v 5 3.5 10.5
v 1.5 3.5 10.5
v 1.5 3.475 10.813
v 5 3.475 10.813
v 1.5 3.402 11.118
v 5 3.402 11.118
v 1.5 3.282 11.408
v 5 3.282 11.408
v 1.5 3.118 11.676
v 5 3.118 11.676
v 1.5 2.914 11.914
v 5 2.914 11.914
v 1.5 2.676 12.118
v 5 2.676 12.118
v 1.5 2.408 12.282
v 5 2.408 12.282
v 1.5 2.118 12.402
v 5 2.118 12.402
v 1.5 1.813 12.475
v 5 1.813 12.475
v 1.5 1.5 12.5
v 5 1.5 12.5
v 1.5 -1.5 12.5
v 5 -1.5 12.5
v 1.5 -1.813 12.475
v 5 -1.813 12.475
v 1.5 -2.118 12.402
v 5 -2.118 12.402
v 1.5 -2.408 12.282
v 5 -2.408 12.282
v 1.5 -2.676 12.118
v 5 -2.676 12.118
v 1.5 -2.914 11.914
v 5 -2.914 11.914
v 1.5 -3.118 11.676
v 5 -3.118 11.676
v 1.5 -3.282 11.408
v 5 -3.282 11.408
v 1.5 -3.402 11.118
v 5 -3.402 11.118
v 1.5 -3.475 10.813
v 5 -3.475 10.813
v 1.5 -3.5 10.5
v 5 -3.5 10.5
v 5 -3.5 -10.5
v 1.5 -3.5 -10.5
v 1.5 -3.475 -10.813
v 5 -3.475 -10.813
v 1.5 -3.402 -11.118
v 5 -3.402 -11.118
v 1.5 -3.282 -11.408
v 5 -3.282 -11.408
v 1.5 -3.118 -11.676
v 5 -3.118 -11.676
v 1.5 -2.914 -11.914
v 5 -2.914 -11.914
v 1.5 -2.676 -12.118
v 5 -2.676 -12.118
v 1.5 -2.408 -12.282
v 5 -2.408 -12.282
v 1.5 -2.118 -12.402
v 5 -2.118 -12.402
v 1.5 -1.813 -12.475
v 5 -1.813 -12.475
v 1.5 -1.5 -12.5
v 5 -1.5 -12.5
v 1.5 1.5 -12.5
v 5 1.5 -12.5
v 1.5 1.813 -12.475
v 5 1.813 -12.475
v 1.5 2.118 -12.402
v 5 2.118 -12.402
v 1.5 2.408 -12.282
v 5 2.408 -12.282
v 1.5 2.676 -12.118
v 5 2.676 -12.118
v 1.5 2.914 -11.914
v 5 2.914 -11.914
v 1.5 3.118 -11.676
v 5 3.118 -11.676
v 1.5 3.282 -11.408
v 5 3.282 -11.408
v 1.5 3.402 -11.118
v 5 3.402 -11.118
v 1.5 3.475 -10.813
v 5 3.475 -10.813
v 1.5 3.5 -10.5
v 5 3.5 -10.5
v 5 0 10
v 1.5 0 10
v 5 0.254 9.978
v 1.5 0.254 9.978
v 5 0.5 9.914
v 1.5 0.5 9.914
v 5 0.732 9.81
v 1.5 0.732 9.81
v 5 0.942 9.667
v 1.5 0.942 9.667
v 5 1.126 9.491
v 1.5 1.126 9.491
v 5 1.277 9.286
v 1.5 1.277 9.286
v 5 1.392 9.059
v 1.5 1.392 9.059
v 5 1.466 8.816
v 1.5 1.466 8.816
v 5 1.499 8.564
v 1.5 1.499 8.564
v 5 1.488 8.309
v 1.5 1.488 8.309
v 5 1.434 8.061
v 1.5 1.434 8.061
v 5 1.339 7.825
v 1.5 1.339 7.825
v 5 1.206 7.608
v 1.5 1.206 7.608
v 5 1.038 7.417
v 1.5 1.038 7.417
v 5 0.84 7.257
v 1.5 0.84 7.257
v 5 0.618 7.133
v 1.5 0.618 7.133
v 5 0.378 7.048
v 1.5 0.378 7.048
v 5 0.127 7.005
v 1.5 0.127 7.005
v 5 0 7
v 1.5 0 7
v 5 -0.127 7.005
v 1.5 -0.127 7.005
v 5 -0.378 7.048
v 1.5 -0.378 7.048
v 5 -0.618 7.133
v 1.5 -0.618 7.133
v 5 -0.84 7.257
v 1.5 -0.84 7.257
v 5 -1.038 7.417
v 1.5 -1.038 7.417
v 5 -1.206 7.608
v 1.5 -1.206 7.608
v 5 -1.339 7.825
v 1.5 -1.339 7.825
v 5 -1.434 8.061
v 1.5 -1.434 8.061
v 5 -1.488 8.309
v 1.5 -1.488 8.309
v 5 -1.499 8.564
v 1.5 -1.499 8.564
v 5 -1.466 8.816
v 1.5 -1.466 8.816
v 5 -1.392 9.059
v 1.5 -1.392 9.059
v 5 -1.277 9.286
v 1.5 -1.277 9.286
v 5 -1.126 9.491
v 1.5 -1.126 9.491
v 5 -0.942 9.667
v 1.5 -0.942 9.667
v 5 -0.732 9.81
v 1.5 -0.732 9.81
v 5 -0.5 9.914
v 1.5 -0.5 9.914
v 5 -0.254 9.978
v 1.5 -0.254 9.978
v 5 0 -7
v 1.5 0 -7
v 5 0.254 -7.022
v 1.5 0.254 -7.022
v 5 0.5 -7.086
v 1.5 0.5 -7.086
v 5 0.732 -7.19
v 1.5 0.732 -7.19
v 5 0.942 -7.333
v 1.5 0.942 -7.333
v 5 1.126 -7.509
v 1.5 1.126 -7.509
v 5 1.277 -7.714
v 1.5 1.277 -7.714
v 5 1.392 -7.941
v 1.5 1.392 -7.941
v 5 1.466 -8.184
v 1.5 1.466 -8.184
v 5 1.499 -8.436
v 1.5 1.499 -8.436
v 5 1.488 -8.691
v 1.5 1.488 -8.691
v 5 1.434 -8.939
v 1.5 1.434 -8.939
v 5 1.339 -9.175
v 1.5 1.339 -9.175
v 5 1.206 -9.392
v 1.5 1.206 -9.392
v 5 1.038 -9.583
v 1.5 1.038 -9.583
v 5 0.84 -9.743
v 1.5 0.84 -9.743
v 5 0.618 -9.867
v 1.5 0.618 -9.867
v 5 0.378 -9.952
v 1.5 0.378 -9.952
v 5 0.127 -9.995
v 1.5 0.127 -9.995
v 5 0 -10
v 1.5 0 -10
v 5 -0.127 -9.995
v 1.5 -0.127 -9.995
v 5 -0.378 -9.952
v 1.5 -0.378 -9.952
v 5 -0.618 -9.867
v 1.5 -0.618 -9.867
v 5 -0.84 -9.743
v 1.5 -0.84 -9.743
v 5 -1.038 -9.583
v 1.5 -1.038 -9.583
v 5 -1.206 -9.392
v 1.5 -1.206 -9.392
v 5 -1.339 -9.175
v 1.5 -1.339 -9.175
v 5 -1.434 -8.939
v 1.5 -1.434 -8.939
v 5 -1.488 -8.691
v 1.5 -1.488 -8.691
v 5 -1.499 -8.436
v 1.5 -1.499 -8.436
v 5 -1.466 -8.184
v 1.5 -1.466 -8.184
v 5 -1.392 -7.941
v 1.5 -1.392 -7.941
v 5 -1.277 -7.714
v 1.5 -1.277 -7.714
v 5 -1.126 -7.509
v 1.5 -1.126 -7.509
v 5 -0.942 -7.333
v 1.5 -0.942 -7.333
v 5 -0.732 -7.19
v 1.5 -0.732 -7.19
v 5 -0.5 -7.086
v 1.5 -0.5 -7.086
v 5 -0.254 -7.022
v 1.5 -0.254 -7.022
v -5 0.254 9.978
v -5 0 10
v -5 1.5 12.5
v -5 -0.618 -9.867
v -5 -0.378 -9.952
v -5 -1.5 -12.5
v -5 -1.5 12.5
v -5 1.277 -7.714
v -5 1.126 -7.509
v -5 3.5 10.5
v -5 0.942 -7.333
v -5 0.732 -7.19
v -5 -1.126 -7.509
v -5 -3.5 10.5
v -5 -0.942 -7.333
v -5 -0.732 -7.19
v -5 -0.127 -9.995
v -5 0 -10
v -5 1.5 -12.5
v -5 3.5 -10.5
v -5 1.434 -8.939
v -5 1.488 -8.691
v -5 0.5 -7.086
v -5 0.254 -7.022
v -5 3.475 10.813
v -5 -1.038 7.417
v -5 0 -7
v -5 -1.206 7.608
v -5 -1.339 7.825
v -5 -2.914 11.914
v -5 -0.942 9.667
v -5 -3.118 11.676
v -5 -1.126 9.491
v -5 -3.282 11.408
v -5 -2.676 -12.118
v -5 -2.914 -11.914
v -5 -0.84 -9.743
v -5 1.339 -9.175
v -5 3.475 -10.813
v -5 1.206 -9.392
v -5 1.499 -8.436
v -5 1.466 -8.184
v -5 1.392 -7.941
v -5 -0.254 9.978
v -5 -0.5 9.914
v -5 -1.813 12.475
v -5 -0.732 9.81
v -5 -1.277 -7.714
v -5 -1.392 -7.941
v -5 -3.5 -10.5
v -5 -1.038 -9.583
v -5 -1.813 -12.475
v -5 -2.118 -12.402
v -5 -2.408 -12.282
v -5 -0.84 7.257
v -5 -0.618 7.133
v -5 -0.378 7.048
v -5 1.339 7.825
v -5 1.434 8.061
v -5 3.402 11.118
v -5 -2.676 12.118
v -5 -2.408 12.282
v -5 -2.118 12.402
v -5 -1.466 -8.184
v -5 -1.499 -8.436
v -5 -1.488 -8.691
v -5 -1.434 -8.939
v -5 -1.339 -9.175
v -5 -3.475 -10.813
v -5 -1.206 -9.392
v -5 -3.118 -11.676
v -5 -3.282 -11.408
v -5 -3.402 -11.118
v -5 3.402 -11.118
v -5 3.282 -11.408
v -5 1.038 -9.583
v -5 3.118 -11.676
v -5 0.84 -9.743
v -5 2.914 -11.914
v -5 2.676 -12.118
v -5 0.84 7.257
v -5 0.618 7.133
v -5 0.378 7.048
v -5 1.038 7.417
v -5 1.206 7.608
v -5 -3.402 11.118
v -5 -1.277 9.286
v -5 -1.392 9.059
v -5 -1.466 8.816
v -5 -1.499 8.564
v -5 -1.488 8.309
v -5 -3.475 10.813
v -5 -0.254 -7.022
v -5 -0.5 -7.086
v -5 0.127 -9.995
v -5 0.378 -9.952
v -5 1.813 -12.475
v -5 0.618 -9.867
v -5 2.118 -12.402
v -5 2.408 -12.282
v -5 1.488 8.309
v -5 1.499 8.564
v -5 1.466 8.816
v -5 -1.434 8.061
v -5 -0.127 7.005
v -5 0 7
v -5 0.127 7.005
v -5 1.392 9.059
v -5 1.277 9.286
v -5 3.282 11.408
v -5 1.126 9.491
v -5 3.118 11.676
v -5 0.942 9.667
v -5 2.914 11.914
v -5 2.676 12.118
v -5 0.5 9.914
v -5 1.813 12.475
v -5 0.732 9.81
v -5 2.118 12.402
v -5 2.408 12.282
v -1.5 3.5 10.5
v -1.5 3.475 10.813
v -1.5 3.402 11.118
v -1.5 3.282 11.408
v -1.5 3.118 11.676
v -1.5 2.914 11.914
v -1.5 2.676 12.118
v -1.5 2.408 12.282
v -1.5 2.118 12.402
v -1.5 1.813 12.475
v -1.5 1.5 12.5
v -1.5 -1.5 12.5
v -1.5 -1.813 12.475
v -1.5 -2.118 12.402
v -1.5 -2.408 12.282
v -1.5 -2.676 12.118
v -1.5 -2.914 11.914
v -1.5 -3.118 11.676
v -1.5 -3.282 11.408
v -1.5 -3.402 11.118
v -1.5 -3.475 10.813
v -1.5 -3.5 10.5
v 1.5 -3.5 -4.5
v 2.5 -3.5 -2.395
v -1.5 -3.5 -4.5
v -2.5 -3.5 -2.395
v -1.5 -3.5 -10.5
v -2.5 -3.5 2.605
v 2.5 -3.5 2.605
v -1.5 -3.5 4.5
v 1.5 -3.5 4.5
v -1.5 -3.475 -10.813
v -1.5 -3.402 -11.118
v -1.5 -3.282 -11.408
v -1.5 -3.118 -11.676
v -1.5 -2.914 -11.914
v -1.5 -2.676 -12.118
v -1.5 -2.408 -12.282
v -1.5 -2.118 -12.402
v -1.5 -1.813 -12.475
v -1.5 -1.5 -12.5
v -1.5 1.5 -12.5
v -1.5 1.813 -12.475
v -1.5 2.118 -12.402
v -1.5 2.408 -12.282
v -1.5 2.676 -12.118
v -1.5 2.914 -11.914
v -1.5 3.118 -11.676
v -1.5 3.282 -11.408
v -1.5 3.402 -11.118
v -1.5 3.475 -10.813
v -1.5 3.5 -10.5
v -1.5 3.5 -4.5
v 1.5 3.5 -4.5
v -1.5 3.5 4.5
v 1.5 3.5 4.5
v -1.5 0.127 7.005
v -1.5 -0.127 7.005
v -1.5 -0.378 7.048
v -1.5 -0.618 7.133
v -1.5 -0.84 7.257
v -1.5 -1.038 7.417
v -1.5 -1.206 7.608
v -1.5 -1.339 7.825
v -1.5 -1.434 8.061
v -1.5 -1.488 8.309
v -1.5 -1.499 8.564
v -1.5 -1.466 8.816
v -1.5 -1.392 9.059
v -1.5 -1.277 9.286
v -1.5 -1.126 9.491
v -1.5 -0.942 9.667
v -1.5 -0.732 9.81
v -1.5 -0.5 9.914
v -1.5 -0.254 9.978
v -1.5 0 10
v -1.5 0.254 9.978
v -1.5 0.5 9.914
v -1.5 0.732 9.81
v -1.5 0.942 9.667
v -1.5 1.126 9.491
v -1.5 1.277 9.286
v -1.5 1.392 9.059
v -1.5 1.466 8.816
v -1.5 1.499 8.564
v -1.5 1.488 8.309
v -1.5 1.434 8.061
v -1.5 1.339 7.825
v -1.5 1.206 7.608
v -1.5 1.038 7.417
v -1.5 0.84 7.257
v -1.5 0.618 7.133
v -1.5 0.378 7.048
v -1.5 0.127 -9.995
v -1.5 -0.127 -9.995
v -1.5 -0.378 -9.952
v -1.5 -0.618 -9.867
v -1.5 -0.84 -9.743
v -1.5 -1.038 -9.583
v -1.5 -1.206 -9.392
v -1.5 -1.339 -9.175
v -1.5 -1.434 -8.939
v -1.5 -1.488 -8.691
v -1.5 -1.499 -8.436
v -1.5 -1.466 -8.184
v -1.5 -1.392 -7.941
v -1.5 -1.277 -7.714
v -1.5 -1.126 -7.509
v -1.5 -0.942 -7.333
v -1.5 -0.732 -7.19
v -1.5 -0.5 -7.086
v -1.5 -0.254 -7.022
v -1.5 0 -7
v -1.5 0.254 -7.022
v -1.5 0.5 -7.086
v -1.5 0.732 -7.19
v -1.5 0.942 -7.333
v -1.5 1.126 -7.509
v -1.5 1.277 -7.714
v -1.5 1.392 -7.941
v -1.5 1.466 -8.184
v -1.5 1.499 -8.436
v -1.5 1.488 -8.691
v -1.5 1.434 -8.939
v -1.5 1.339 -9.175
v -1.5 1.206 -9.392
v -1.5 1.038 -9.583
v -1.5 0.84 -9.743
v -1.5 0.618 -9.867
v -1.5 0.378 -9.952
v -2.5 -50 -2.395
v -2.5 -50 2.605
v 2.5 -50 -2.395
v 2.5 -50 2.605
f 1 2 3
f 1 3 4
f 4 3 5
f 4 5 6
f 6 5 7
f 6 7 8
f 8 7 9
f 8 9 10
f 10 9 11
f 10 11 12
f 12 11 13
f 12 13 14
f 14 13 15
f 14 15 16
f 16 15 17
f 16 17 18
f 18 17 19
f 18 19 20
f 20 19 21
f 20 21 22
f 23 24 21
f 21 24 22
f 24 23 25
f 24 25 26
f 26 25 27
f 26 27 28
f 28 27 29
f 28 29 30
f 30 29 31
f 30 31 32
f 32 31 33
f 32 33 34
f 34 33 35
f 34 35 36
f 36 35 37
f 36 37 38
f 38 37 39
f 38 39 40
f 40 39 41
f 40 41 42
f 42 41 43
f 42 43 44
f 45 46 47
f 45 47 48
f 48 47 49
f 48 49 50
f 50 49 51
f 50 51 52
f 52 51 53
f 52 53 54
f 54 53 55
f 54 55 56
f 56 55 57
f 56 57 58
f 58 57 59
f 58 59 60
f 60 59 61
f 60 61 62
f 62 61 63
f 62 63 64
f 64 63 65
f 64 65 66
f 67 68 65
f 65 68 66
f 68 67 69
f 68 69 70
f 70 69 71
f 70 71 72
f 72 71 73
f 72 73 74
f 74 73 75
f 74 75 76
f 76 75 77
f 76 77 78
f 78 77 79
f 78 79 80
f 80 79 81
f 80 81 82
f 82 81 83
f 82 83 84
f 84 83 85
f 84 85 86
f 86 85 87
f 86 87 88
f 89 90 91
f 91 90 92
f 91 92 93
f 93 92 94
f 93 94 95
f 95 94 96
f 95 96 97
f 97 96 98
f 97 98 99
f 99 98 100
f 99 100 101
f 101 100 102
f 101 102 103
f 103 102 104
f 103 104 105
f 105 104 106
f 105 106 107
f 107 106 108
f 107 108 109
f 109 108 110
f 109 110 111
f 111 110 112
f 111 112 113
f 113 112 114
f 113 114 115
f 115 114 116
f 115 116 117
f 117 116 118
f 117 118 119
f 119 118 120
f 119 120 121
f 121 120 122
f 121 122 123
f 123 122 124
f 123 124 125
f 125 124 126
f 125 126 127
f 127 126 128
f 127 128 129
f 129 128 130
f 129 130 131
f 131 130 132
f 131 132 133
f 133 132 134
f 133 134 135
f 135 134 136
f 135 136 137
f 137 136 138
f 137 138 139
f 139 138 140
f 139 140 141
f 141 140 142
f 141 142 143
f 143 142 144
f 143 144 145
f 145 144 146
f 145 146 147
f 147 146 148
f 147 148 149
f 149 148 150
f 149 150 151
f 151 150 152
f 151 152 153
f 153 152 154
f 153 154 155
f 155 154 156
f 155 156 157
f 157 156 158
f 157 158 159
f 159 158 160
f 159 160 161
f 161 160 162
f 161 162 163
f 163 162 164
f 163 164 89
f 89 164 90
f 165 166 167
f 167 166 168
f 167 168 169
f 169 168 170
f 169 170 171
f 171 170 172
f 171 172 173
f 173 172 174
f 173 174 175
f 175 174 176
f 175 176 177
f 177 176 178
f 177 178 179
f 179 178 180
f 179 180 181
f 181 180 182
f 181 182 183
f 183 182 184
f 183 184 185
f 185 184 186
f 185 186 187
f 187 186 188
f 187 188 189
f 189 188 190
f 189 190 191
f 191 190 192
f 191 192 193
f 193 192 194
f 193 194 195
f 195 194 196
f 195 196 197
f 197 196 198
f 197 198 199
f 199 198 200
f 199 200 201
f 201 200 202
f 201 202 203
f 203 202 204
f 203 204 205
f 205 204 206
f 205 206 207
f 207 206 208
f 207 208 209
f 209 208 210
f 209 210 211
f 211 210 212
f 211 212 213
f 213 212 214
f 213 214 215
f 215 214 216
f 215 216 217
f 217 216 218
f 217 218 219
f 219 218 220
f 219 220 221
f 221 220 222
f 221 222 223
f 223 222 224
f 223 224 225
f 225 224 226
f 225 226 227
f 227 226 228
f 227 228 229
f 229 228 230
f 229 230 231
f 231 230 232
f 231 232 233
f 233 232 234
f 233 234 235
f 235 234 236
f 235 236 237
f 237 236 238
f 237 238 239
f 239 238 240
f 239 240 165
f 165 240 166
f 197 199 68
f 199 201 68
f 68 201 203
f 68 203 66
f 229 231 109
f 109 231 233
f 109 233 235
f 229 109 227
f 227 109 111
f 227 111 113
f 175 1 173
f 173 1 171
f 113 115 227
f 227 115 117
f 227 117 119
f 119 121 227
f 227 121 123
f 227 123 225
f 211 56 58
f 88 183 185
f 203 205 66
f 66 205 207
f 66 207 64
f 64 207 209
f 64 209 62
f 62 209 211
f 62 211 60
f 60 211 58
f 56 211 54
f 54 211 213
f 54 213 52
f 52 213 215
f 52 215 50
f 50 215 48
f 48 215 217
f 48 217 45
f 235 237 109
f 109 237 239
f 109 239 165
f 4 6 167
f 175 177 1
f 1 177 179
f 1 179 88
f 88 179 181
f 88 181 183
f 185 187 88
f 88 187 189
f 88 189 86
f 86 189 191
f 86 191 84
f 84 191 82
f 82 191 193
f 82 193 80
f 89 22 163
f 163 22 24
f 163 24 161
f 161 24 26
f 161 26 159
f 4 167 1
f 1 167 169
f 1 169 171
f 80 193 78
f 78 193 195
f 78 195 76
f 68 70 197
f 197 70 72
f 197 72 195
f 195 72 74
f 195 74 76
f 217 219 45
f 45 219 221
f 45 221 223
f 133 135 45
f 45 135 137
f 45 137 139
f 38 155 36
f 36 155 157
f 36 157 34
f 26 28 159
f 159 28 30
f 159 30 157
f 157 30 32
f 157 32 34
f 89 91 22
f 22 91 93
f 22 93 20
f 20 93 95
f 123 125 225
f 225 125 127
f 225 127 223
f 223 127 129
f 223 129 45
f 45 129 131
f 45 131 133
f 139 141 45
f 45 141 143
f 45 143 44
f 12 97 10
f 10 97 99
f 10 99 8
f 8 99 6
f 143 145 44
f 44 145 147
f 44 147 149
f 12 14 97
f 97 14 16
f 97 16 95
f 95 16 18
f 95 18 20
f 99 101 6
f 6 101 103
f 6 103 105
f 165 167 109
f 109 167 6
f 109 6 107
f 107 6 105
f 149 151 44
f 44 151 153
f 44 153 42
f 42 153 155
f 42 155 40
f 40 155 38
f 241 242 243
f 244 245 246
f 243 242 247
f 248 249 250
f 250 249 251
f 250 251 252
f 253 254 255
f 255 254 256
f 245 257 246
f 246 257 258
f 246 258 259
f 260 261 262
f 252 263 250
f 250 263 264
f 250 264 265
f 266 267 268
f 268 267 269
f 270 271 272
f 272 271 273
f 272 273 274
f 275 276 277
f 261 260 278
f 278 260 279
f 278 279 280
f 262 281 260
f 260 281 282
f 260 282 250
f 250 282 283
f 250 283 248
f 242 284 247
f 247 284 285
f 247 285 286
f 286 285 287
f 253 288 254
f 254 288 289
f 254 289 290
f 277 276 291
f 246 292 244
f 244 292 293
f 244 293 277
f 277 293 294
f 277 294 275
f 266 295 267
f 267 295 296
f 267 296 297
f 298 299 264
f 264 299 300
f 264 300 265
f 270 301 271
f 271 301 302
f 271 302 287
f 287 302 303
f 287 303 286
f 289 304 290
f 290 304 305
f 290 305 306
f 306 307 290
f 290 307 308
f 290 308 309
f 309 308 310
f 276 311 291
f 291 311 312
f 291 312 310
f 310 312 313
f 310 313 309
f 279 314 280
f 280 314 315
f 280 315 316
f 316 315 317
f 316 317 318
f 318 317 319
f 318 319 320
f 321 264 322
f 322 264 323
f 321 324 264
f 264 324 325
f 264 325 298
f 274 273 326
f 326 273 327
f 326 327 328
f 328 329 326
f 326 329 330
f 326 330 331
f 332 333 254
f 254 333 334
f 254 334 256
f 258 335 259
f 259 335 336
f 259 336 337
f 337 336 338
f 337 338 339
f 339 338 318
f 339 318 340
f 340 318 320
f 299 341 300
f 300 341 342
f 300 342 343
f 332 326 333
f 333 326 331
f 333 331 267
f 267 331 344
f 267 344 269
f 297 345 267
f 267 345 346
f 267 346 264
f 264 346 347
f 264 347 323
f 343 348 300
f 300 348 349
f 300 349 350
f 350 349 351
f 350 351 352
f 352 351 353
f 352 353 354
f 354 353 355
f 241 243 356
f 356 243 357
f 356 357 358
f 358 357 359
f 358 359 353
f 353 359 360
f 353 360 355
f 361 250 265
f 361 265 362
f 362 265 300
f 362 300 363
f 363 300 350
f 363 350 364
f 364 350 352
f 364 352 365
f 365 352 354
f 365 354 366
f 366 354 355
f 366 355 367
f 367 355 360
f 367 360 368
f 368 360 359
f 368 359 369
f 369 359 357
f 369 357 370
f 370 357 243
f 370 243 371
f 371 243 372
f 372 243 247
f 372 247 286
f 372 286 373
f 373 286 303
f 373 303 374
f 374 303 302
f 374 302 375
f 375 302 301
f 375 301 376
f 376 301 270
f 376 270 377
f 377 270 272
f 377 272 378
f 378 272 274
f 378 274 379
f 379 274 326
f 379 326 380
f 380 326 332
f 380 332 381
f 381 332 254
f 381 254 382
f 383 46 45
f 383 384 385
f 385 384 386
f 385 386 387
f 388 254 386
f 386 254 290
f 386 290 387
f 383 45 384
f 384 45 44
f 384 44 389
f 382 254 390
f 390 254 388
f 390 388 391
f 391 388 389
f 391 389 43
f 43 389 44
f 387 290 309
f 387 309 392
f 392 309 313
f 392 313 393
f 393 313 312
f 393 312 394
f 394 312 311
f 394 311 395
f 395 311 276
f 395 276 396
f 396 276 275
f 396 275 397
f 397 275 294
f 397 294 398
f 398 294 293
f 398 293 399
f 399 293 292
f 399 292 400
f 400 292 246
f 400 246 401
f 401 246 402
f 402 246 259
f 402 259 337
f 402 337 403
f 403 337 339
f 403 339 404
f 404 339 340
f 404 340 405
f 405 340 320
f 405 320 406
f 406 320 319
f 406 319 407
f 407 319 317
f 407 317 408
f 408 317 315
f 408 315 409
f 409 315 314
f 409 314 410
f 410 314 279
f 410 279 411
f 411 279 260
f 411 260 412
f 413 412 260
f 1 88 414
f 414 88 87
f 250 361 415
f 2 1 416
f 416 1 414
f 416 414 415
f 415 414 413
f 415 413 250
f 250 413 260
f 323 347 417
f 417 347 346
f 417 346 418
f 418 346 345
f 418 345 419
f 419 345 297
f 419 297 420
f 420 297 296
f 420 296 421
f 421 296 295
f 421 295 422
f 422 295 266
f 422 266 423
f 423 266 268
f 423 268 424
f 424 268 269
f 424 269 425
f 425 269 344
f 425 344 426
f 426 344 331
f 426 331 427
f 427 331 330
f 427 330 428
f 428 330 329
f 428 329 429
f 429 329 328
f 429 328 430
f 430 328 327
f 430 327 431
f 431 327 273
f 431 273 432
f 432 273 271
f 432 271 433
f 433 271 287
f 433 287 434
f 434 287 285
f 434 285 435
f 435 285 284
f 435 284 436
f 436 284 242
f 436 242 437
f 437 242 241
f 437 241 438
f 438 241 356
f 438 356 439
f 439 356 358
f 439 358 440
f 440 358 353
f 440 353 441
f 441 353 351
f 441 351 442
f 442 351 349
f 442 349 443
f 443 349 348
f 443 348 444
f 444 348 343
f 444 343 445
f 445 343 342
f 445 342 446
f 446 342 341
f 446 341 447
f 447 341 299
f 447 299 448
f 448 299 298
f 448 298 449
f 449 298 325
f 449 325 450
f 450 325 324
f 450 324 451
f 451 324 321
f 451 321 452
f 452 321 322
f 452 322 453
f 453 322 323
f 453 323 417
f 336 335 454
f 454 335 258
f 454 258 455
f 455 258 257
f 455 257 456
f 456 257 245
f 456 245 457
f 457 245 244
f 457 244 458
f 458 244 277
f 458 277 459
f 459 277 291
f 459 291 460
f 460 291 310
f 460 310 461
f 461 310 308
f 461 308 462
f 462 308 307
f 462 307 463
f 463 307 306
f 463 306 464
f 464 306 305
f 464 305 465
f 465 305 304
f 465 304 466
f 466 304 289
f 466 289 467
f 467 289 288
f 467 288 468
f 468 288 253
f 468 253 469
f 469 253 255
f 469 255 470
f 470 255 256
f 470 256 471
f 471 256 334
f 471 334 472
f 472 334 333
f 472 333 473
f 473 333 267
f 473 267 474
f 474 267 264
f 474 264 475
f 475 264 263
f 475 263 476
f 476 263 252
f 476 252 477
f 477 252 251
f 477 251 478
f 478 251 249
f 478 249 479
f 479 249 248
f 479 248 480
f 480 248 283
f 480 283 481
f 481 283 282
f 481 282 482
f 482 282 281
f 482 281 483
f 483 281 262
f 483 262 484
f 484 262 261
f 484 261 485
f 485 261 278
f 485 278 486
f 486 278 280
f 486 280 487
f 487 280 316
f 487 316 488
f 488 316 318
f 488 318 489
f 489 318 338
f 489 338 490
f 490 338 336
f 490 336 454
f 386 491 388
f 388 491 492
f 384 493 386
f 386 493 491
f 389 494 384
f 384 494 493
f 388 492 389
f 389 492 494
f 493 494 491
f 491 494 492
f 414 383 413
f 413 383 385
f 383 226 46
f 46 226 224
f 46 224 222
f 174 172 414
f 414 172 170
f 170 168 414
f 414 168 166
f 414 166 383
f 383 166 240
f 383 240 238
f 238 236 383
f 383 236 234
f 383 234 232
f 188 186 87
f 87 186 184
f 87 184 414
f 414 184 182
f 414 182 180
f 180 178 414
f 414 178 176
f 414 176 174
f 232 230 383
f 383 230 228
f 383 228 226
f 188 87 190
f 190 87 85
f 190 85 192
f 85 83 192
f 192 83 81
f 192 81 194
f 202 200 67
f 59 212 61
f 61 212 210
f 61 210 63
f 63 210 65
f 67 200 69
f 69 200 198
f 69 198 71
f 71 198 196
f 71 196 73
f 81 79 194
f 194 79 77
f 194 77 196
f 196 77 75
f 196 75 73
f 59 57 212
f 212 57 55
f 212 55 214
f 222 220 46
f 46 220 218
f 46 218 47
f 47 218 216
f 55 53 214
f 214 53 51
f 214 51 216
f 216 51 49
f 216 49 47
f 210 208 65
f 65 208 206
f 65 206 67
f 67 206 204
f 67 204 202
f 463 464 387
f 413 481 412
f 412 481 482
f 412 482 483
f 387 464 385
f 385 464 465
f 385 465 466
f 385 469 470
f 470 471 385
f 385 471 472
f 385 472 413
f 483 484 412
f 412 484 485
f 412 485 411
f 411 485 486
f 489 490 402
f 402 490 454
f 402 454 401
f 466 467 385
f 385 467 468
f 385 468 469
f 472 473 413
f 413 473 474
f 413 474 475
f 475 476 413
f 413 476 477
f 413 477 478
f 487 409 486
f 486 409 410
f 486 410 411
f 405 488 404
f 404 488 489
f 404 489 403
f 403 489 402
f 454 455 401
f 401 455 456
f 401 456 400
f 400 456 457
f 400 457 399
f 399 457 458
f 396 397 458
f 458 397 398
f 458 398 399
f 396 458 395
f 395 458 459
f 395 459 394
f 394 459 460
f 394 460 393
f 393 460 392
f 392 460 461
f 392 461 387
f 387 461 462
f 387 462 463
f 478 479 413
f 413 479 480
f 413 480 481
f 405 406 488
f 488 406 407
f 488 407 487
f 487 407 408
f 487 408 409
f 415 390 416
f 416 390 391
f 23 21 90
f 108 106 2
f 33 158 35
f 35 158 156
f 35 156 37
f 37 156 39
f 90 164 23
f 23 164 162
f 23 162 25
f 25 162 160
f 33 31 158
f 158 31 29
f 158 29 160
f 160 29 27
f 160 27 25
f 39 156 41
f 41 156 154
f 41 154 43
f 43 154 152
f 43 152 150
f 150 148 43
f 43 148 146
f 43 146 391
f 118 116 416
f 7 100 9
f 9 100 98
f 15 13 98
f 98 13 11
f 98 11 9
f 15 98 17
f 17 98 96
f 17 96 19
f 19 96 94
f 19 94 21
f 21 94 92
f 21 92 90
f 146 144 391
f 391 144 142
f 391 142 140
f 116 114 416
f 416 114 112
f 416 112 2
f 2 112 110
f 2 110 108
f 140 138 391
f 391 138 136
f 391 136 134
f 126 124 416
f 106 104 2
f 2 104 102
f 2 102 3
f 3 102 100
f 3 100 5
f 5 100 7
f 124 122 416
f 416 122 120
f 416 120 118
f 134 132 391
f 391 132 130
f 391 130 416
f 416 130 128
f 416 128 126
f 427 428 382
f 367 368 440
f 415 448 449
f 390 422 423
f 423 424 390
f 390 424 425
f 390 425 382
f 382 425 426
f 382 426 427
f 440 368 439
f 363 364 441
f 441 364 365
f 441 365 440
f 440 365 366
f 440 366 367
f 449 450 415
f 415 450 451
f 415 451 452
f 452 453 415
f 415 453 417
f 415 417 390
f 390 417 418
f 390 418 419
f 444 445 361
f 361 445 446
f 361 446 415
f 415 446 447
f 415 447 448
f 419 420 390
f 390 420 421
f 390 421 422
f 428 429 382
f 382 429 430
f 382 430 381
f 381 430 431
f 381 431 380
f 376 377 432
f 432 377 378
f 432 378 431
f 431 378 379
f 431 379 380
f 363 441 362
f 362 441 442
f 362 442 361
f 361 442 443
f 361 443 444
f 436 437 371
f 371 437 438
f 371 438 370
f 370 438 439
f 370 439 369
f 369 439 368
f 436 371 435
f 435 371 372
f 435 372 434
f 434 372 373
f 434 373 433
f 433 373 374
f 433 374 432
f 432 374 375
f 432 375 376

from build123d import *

# Parameters (mm, degrees)
CROQUIS1_W                 = 5
CROQUIS1_H                 = 5
SALIENTE_EXTRUIR1_DEPTH    = 50
CROQUIS2_R                 = 1.5
SALIENTE_EXTRUIR2_DEPTH    = 5
CORTAR_EXTRUIR1_DEPTH      = 56.167925464
CORTAR_EXTRUIR1_DEPTH_BACK = 56.167925464
CROQUIS3_W                 = 3
CROQUIS3_H                 = 8


with BuildPart() as part:
    # Croquis1 → Saliente-Extruir1 (new body)
    with BuildSketch(Plane(origin=(0, 0, 0), x_dir=(1, 0, 0), z_dir=(0, 1, 0))):
        with Locations((0, -0.104885861)):
            Rectangle(CROQUIS1_W, CROQUIS1_H)
    extrude(amount=-SALIENTE_EXTRUIR1_DEPTH)

    # Croquis2 → Saliente-Extruir2 (add, symmetric)
    with BuildSketch(Plane(origin=(0, 0, 0), x_dir=(0, 0, -1), z_dir=(1, 0, 0))):
        with BuildLine():
            Line((10.5, -3.5), (-10.5, -3.5))
            ThreePointArc((-10.5, -3.5), (-11.914213562, -2.914213562), (-12.5, -1.5))
            Line((-12.5, -1.5), (-12.5, 1.5))
            ThreePointArc((-12.5, 1.5), (-11.914213562, 2.914213562), (-10.5, 3.5))
            Line((-10.5, 3.5), (10.5, 3.5))
            ThreePointArc((10.5, 3.5), (11.914213562, 2.914213562), (12.5, 1.5))
            Line((12.5, 1.5), (12.5, -1.5))
            ThreePointArc((12.5, -1.5), (11.914213562, -2.914213562), (10.5, -3.5))
        make_face()
        with Locations((-8.5, 0)):
            Circle(CROQUIS2_R, mode=Mode.SUBTRACT)
        with Locations((8.5, 0)):
            Circle(CROQUIS2_R, mode=Mode.SUBTRACT)
    extrude(amount=SALIENTE_EXTRUIR2_DEPTH, both=True)

    # Croquis3 → Cortar-Extruir1 (cut, two sides: drawn at the far end of the back side and taken through both)
    with BuildSketch(Plane(origin=(0, 3.5, 0), x_dir=(1, 0, 0), z_dir=(0, 1, 0)).offset(-CORTAR_EXTRUIR1_DEPTH_BACK)):
        with Locations((0, 8.5)):
            Rectangle(CROQUIS3_W, CROQUIS3_H)
        with Locations((0, -8.5)):
            Rectangle(CROQUIS3_W, CROQUIS3_H)
    extrude(amount=CORTAR_EXTRUIR1_DEPTH + CORTAR_EXTRUIR1_DEPTH_BACK, mode=Mode.SUBTRACT)


solid = part.part
